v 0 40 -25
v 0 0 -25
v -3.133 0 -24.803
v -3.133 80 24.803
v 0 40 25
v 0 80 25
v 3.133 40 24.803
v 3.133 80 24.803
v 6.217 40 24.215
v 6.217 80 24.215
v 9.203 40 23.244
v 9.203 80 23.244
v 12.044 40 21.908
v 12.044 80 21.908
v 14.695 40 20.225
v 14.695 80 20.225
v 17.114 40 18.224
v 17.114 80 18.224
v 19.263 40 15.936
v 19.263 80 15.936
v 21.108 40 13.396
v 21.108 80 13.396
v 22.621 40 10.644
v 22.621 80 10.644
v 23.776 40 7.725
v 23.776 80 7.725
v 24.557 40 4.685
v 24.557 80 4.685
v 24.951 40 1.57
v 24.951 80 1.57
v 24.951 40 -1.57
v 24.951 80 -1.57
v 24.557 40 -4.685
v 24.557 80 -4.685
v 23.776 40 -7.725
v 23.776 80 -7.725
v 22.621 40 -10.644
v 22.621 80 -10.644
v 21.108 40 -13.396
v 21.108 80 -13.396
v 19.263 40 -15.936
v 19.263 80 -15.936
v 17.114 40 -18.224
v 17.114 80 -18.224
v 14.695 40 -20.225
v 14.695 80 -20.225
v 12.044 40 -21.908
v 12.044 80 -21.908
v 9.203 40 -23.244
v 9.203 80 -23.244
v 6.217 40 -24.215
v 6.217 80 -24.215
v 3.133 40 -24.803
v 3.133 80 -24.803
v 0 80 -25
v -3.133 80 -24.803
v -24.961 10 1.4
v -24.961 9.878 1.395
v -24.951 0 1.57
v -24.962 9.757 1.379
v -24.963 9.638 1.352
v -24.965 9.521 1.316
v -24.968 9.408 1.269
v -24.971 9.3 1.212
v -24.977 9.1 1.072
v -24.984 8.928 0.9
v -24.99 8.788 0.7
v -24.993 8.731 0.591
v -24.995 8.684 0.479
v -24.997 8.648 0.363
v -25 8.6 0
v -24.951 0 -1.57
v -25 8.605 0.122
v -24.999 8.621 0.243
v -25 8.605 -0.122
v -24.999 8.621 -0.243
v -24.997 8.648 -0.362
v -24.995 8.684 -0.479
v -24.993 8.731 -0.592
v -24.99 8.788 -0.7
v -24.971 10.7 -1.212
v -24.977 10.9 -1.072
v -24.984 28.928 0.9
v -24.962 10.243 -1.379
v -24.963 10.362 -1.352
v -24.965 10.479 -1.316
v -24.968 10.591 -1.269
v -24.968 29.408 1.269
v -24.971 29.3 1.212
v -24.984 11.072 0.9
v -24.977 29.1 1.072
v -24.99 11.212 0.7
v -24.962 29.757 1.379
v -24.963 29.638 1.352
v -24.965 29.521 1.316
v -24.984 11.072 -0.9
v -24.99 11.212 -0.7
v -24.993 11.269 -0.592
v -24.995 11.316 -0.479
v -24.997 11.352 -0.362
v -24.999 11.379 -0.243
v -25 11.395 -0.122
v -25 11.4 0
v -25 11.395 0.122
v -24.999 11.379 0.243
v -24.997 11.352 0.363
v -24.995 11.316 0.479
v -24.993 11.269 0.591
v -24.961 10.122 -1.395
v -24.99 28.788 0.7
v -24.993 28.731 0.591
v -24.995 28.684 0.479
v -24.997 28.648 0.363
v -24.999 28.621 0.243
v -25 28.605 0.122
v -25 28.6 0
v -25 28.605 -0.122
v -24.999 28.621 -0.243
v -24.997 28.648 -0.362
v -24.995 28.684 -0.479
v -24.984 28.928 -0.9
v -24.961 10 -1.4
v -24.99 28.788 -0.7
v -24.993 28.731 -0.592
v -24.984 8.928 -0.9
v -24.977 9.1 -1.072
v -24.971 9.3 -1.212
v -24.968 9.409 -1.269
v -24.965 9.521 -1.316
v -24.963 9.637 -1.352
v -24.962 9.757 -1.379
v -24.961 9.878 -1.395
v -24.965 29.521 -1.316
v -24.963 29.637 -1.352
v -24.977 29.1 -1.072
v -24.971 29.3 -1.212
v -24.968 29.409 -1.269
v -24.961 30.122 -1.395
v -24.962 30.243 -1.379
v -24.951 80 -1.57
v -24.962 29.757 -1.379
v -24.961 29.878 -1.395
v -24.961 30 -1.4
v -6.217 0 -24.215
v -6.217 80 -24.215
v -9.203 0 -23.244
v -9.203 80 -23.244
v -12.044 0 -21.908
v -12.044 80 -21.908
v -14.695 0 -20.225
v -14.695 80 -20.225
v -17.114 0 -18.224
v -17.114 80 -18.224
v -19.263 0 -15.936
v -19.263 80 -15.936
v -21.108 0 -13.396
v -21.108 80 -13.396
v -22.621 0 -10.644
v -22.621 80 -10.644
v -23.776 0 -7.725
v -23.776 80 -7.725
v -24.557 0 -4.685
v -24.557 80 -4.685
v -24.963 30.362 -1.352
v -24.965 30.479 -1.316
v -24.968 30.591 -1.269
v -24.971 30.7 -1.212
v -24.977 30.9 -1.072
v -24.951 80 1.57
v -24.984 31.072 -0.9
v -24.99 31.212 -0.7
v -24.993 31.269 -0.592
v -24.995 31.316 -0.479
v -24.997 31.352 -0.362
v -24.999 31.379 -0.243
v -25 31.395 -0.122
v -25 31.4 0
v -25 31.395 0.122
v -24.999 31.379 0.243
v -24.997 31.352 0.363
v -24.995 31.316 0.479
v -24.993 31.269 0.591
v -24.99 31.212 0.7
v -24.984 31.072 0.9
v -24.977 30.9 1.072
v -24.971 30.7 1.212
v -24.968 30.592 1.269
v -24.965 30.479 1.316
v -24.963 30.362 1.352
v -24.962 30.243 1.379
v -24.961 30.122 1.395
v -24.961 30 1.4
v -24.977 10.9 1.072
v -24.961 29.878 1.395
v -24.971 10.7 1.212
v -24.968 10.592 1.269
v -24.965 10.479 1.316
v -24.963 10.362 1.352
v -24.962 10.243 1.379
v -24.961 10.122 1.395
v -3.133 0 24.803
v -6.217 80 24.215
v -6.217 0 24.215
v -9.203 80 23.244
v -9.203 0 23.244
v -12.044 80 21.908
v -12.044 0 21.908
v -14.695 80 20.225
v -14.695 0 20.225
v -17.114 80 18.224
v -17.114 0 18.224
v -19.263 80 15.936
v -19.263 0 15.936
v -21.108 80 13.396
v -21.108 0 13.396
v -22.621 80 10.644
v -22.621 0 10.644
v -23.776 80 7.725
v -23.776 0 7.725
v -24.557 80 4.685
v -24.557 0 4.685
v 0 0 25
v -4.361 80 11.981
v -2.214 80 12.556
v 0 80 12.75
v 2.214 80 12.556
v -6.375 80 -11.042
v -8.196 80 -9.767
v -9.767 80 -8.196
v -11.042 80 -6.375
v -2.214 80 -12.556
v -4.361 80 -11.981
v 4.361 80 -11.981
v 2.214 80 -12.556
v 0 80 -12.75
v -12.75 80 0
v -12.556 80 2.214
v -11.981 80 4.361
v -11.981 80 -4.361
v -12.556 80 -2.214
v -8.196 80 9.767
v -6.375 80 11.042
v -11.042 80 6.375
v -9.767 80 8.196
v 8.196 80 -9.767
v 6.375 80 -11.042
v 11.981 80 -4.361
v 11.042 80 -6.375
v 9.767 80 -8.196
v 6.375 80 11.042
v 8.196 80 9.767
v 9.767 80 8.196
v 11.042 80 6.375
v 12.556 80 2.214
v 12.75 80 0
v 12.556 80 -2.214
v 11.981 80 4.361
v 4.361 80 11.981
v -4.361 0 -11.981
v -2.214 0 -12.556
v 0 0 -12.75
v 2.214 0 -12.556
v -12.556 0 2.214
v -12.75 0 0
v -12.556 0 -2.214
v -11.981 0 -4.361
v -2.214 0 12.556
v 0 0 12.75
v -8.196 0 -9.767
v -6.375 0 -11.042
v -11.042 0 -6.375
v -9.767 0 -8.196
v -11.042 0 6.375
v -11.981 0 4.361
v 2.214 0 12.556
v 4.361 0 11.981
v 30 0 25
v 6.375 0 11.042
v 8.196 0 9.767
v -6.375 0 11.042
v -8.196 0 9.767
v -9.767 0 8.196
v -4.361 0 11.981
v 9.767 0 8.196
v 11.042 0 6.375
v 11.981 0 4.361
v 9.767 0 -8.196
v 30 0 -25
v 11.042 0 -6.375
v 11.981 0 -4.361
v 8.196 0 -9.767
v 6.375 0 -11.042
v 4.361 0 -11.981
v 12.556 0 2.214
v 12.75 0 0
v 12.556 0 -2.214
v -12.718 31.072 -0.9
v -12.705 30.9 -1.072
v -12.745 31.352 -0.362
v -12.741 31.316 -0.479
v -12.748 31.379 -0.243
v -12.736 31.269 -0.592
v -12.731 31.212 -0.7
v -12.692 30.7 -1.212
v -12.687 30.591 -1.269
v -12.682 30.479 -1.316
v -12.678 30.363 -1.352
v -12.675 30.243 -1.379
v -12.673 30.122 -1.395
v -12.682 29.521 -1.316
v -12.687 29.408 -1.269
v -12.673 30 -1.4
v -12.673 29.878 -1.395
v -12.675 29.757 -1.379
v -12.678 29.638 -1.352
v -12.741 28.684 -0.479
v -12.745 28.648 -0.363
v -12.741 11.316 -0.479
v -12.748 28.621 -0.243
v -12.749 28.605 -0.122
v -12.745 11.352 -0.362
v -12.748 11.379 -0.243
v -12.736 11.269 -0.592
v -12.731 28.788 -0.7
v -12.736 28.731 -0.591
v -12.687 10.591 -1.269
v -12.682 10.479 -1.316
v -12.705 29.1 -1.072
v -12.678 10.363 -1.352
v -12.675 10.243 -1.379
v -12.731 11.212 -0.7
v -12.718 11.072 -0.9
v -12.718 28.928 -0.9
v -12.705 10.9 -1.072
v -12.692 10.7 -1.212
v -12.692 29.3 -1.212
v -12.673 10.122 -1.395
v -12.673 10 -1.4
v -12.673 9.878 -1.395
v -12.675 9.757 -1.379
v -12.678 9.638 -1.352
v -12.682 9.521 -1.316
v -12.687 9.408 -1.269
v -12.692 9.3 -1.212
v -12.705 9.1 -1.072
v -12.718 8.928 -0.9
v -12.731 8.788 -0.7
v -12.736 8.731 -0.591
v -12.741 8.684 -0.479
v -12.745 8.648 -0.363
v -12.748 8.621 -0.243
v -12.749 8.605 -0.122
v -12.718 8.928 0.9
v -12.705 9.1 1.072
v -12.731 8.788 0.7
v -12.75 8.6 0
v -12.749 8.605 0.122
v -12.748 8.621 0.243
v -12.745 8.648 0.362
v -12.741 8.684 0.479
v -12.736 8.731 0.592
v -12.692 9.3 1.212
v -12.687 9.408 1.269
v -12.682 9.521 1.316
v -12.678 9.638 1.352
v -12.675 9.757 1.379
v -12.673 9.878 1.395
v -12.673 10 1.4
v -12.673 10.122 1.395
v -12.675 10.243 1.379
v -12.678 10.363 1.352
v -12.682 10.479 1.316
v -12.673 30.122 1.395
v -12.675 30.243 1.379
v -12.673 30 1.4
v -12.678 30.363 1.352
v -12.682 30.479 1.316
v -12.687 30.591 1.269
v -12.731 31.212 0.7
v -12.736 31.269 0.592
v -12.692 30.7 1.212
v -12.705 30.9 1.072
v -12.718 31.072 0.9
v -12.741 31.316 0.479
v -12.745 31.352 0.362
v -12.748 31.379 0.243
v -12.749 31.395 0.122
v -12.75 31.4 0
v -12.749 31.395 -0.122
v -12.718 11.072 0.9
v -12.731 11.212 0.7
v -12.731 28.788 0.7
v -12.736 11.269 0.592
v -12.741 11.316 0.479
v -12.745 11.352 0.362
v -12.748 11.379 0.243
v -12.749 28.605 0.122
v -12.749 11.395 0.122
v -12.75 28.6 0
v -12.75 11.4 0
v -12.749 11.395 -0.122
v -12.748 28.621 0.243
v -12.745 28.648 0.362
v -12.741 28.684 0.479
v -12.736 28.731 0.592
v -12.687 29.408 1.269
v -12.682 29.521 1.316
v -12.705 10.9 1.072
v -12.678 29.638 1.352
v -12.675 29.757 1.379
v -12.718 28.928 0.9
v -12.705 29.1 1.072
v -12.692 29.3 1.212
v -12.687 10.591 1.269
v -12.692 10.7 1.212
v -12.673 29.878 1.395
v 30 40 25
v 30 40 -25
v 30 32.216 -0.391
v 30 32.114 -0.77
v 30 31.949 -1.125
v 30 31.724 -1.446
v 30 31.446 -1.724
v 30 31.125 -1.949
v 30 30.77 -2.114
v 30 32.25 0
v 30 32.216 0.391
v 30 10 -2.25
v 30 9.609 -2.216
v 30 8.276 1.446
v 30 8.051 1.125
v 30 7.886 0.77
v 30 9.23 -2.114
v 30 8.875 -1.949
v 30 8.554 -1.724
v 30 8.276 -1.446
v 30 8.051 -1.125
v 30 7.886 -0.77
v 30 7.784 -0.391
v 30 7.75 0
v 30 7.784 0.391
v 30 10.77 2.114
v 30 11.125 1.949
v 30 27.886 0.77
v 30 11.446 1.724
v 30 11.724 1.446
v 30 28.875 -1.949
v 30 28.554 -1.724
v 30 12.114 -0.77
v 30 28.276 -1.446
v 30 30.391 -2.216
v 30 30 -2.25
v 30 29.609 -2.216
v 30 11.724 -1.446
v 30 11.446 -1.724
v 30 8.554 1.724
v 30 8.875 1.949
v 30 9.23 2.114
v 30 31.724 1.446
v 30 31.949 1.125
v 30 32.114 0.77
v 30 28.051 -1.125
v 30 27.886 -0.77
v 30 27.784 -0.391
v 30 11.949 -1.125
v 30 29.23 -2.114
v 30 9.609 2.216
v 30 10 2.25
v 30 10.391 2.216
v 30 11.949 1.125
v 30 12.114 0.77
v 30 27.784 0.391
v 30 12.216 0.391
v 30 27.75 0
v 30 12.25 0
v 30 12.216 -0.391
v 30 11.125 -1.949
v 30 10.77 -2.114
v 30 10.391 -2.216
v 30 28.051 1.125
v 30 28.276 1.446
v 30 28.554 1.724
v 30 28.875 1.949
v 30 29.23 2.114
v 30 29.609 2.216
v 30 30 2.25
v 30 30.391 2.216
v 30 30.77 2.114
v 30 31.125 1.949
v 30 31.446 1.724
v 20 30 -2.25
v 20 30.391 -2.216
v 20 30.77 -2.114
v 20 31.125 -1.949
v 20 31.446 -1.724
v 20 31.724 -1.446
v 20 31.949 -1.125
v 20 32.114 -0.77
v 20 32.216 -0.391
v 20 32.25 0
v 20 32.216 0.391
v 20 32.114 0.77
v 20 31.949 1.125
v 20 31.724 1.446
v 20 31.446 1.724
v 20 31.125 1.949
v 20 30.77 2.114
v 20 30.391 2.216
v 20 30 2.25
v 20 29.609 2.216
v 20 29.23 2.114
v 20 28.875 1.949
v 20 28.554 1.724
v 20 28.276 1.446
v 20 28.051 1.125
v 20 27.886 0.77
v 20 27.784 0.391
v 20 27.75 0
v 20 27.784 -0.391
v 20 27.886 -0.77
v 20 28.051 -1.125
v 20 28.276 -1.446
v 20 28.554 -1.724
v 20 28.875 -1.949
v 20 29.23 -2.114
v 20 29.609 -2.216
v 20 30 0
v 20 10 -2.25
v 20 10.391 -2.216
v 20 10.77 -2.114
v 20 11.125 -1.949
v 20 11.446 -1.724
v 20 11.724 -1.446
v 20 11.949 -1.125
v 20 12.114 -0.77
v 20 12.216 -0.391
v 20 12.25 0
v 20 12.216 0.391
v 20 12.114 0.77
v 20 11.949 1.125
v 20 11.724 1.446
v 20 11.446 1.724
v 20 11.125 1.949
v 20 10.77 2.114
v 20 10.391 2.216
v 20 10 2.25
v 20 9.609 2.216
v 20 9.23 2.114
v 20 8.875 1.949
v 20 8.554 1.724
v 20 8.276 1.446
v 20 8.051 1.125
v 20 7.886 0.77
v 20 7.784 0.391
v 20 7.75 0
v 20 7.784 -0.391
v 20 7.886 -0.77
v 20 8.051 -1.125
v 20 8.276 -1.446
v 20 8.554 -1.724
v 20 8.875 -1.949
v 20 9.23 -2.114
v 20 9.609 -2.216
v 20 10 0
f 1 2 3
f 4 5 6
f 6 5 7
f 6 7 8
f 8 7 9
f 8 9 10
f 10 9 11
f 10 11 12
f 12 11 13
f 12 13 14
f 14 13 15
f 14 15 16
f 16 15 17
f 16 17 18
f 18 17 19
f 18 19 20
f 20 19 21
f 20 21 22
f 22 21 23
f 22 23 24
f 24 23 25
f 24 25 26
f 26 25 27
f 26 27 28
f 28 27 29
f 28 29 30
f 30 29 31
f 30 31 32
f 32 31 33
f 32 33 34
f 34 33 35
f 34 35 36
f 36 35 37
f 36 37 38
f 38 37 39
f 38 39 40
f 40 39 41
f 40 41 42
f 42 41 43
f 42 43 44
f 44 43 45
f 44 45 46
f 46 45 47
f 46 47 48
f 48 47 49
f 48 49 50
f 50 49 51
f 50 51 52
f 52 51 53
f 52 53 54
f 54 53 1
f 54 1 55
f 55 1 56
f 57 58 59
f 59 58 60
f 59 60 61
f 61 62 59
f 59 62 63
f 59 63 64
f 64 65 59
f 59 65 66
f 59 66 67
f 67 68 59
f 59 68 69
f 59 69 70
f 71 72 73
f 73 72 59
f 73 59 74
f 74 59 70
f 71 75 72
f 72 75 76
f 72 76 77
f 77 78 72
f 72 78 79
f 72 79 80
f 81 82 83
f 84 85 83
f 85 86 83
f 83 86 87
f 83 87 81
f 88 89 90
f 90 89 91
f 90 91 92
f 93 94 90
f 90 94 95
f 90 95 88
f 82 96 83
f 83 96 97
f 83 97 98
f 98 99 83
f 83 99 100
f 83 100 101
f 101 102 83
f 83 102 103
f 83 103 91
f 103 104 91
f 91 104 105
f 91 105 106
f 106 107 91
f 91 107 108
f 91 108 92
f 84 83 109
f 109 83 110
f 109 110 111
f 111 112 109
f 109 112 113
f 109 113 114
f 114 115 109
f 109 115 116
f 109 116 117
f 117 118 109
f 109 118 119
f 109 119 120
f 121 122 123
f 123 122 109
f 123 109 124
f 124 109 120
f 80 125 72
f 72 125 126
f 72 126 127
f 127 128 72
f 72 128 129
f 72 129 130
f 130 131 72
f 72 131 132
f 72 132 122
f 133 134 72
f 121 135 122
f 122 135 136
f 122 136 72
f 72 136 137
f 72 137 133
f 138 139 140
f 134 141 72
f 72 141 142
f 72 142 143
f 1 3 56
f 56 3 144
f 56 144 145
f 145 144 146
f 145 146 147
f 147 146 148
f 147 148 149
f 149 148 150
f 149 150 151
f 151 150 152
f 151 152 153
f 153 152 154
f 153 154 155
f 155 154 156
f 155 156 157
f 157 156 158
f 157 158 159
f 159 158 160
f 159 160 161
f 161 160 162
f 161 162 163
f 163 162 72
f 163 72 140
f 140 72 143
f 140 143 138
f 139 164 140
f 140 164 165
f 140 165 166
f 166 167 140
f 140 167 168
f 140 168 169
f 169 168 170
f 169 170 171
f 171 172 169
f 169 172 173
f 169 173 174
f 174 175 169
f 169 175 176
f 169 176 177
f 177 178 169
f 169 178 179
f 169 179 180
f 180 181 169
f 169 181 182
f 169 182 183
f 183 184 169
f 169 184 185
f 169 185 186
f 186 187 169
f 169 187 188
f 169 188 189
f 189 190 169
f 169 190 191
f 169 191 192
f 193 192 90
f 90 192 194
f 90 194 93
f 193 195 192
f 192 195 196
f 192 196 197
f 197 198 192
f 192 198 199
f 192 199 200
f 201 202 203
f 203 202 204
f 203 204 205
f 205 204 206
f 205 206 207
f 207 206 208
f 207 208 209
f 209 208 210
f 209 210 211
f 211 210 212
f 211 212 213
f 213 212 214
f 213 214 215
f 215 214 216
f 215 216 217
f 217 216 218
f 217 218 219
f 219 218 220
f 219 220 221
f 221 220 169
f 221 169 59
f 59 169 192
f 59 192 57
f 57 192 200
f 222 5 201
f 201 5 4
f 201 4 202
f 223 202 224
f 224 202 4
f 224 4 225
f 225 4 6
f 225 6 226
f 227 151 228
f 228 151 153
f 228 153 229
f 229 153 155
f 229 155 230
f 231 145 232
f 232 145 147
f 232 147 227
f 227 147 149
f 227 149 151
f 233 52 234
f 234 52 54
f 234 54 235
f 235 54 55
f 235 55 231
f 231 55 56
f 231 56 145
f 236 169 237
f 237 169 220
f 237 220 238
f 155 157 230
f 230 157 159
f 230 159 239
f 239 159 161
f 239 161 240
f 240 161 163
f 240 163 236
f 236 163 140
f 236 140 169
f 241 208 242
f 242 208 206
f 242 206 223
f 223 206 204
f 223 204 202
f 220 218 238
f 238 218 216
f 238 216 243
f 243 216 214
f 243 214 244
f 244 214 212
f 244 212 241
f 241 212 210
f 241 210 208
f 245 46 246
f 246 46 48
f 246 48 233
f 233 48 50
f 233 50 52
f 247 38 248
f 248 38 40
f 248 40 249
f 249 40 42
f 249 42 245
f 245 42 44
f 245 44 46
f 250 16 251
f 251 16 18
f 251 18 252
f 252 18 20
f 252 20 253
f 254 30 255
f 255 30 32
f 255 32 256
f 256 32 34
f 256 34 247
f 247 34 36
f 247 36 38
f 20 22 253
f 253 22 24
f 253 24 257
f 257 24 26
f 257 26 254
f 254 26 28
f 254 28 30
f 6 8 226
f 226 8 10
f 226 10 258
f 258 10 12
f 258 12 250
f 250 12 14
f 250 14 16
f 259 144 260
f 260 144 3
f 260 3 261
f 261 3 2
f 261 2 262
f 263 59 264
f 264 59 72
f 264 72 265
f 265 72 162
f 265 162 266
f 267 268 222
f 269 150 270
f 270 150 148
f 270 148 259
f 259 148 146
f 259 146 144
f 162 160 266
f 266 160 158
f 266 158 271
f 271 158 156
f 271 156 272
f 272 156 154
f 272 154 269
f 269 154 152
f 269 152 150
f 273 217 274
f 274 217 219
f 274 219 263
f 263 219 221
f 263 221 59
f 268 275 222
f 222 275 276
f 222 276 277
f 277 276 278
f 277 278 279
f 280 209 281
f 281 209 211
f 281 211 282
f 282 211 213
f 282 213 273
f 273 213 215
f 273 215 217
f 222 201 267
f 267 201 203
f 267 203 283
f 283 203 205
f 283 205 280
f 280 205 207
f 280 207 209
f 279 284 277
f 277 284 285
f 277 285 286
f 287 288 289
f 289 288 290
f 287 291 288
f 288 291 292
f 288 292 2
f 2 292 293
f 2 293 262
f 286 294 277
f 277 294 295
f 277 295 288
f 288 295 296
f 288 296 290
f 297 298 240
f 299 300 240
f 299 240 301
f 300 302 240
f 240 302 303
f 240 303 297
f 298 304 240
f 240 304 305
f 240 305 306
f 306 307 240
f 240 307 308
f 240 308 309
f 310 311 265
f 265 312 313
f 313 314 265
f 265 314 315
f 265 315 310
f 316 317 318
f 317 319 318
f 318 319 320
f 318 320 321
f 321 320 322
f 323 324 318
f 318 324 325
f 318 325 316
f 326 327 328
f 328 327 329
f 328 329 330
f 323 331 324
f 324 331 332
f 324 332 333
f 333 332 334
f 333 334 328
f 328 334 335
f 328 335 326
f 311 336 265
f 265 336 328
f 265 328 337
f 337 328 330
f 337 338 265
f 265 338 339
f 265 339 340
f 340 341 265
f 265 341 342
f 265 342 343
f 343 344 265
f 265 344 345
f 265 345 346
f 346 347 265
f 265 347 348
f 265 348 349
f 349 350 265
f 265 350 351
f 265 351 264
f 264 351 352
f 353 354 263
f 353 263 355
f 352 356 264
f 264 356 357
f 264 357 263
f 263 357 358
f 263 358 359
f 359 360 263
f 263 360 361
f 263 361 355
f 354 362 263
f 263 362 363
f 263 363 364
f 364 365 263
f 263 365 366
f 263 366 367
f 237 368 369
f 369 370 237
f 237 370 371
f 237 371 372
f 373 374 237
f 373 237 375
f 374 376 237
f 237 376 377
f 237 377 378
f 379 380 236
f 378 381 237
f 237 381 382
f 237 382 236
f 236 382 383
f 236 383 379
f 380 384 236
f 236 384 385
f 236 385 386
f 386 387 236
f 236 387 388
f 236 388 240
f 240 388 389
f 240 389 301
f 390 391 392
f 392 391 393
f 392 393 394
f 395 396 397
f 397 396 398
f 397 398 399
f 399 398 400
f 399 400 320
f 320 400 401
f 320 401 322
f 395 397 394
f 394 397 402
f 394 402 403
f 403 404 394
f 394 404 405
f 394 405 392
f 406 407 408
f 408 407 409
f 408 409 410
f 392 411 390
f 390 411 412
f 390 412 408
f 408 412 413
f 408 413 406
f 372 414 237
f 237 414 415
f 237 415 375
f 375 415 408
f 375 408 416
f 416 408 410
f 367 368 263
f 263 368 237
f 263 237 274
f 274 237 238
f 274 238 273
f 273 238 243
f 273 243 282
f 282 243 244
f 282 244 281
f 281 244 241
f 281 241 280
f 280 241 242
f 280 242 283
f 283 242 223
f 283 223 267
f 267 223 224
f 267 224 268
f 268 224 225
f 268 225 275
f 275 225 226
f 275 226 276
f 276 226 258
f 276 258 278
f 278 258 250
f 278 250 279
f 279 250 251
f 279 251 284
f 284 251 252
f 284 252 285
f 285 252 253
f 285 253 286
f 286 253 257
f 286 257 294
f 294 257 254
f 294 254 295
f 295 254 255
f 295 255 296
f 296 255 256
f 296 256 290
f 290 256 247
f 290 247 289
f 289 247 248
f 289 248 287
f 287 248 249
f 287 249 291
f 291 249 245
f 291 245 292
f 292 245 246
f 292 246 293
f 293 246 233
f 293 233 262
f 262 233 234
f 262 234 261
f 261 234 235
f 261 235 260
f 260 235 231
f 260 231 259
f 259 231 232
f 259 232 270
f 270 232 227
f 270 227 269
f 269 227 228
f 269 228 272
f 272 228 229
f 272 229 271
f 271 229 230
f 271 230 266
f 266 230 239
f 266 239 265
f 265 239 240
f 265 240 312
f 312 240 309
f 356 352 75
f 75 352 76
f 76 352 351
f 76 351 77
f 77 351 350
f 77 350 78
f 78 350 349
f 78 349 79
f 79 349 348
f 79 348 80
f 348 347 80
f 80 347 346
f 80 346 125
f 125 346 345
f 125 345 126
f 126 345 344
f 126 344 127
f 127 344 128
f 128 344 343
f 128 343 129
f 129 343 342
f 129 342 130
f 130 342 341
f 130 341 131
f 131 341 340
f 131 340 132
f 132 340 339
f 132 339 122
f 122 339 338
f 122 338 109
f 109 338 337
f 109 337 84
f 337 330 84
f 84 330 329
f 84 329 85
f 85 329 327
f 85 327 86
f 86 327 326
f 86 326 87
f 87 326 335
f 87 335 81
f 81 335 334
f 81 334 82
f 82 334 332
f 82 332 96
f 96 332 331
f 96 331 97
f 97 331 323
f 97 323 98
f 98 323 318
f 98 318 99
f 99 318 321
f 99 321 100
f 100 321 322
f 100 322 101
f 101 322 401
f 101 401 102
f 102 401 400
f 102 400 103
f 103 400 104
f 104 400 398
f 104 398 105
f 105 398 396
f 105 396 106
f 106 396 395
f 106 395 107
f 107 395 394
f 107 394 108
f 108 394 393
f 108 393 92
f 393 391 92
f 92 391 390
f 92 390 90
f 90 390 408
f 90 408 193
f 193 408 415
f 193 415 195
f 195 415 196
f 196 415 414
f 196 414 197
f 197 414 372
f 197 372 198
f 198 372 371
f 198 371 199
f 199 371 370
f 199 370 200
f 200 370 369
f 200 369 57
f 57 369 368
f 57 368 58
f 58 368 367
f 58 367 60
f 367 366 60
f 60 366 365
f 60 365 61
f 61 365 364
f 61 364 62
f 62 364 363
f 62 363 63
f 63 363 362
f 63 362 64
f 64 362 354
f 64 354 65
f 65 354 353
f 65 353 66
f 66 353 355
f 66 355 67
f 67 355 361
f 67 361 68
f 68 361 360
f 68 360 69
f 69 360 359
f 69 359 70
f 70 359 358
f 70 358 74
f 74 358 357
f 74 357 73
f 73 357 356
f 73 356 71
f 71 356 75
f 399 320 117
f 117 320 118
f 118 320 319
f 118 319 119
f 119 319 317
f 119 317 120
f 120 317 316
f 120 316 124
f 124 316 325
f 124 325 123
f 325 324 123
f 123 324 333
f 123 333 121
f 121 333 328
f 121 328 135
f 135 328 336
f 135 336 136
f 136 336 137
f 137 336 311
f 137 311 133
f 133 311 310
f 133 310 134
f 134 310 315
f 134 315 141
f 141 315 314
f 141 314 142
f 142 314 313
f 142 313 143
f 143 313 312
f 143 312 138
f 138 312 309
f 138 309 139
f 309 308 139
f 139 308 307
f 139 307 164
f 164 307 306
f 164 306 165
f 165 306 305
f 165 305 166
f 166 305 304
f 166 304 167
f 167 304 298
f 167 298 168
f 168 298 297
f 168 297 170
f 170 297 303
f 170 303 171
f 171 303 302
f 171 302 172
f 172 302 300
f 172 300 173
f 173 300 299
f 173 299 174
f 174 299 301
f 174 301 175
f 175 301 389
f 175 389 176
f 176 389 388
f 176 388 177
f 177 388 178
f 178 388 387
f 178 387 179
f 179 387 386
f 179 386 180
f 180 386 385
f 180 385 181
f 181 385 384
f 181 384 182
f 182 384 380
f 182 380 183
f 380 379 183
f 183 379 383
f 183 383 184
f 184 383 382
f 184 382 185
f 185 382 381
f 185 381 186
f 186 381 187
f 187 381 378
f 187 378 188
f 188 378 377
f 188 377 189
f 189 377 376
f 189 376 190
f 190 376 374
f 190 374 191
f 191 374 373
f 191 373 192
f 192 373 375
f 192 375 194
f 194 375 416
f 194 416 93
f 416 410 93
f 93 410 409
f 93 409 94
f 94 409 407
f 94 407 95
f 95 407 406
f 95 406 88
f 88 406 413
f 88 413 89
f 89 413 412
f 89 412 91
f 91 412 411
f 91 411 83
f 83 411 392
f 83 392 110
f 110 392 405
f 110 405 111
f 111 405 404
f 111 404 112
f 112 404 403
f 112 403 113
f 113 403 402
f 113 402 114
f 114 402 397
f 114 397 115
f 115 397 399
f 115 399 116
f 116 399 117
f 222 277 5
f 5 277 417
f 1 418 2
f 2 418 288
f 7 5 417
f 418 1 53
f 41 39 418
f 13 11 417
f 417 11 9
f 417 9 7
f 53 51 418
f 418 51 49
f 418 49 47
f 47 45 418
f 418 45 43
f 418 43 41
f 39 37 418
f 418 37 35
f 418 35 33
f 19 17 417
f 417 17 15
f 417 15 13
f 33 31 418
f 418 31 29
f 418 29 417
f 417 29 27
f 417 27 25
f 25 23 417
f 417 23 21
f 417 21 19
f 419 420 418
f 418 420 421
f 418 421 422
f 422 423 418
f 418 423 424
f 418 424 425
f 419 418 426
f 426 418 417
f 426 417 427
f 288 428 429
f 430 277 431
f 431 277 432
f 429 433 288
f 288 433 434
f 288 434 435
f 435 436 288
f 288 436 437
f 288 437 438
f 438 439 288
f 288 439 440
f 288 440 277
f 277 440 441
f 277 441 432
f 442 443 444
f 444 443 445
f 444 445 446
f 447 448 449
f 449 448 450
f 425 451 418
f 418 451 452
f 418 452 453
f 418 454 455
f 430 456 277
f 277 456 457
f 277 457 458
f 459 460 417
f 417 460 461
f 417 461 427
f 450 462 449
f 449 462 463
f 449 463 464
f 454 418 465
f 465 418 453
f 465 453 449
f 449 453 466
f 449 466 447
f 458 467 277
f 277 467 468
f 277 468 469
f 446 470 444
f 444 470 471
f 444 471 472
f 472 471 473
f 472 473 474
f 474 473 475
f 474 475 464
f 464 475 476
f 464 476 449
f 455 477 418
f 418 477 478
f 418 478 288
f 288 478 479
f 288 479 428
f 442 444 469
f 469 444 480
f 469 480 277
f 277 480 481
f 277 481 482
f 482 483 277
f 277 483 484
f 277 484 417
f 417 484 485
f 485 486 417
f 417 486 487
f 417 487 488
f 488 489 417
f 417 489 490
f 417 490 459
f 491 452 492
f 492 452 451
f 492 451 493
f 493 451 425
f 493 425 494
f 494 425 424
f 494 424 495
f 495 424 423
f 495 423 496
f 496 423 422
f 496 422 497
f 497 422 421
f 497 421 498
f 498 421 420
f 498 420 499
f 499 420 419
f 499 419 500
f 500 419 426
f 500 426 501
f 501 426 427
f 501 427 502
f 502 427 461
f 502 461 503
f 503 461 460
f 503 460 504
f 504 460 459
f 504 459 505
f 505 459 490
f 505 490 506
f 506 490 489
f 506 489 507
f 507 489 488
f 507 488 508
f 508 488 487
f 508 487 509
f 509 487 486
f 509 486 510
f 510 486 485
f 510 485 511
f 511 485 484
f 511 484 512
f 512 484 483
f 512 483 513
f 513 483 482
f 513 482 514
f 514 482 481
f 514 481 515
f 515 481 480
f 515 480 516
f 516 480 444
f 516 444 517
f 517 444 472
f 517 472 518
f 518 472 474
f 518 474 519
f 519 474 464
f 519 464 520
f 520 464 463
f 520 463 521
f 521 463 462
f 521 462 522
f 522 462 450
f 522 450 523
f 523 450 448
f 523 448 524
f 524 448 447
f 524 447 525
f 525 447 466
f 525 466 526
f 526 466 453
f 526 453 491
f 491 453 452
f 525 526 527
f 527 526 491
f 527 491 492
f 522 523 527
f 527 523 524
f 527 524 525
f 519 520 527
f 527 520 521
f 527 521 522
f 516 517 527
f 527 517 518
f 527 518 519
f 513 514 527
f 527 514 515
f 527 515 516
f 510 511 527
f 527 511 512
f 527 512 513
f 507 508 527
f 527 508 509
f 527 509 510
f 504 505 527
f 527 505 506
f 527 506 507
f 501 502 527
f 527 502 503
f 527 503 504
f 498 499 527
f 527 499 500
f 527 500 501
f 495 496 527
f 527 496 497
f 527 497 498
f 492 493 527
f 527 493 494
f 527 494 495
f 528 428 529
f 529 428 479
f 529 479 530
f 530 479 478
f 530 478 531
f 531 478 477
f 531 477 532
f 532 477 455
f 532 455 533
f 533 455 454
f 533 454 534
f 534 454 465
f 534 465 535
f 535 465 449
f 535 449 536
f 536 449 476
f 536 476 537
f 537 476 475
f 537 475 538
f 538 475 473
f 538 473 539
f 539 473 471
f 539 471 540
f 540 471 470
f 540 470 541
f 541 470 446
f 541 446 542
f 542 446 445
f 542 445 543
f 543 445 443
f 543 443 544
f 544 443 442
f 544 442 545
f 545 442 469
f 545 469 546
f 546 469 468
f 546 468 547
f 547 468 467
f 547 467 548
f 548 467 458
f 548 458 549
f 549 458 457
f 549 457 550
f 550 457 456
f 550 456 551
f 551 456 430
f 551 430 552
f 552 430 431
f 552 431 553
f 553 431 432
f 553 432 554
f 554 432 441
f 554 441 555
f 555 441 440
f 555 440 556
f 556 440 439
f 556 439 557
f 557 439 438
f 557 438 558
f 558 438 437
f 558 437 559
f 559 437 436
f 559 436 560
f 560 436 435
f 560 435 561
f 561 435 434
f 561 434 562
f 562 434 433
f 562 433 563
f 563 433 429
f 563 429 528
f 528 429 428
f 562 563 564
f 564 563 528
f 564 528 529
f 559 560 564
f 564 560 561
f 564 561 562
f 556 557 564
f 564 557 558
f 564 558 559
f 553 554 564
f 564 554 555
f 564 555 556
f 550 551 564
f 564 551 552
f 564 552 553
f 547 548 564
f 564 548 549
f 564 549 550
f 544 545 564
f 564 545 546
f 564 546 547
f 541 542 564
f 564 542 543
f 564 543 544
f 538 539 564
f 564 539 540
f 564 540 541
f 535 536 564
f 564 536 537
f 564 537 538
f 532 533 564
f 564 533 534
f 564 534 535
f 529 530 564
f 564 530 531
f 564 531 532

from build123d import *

# Parameters (mm, degrees)
SKETCH1_R                       = 25
BOSS_EXTRUDE1_DEPTH             = 80
SKETCH2_R                       = 12.75
CUT_EXTRUDE1_DEPTH              = 88.464278423
SKETCH3_R                       = 1.4
CUT_EXTRUDE2_DEPTH              = 88.464278423
BOSS_EXTRUDE2_REACH             = 99.596
BOSS_EXTRUDE2_END_RADIUS        = 25
SKETCH5_W                       = 50
SKETCH5_H                       = 40
BOSS_EXTRUDE2_DIRECTION_2_DEPTH = 5
SKETCH6_R                       = 2.25
CUT_EXTRUDE3_DEPTH              = 10


with BuildPart() as part:
    # Sketch1 → Boss-Extrude1 (new body)
    with BuildSketch(Plane(origin=(0, 0, 0), x_dir=(1, 0, 0), z_dir=(0, 1, 0))):
        Circle(SKETCH1_R)
    extrude(amount=BOSS_EXTRUDE1_DEPTH)

    # Sketch2 → Cut-Extrude1 (cut, through all)
    with BuildSketch(Plane(origin=(0, 80, 0), x_dir=(1, 0, 0), z_dir=(0, 1, 0))):
        Circle(SKETCH2_R)
    extrude(amount=-CUT_EXTRUDE1_DEPTH, mode=Mode.SUBTRACT)

    # Sketch3 → Cut-Extrude2 (cut, through all)
    with BuildSketch(Plane(origin=(0, 0, 0), x_dir=(0, 0, -1), z_dir=(1, 0, 0))):
        with Locations((0, 30)):
            Circle(SKETCH3_R)
        with Locations((0, 10)):
            Circle(SKETCH3_R)
    extrude(amount=-CUT_EXTRUDE2_DEPTH, mode=Mode.SUBTRACT)

    # Boss-Extrude2: up to this cylinder (the profile starts outside it)
    boss_extrude2_end = Plane(origin=(0, 20, 0), z_dir=(0, -1, 0)) * Cylinder(BOSS_EXTRUDE2_END_RADIUS, 250.192, mode=Mode.PRIVATE)
    # Sketch5 → Boss-Extrude2 (add, up to the surface)
    with BuildSketch(Plane(origin=(25, 0, 0), x_dir=(0, 0, -1), z_dir=(1, 0, 0)), mode=Mode.PRIVATE) as boss_extrude2_sk1:
        with Locations((0, 20)):
            Rectangle(SKETCH5_W, SKETCH5_H)
    boss_extrude2_tool1 = extrude(boss_extrude2_sk1.sketch, amount=-BOSS_EXTRUDE2_REACH, mode=Mode.PRIVATE) - boss_extrude2_end
    add(boss_extrude2_tool1.solids().sort_by_distance((25, 20, 0))[0])
    add(boss_extrude2_tool1.solids().sort_by_distance((25, 20, 0))[1])

    # Sketch5 → Boss-Extrude2 direction 2 (add)
    with BuildSketch(Plane(origin=(25, 0, 0), x_dir=(0, 0, -1), z_dir=(1, 0, 0))):
        with Locations((0, 20)):
            Rectangle(SKETCH5_W, SKETCH5_H)
    extrude(amount=BOSS_EXTRUDE2_DIRECTION_2_DEPTH)

    # Sketch6 → Cut-Extrude3 (cut)
    with BuildSketch(Plane(origin=(30, 0, 0), x_dir=(0, 0, -1), z_dir=(1, 0, 0))):
        with Locations((0, 10)):
            Circle(SKETCH6_R)
        with Locations((0, 30)):
            Circle(SKETCH6_R)
    extrude(amount=-CUT_EXTRUDE3_DEPTH, mode=Mode.SUBTRACT)


solid = part.part
